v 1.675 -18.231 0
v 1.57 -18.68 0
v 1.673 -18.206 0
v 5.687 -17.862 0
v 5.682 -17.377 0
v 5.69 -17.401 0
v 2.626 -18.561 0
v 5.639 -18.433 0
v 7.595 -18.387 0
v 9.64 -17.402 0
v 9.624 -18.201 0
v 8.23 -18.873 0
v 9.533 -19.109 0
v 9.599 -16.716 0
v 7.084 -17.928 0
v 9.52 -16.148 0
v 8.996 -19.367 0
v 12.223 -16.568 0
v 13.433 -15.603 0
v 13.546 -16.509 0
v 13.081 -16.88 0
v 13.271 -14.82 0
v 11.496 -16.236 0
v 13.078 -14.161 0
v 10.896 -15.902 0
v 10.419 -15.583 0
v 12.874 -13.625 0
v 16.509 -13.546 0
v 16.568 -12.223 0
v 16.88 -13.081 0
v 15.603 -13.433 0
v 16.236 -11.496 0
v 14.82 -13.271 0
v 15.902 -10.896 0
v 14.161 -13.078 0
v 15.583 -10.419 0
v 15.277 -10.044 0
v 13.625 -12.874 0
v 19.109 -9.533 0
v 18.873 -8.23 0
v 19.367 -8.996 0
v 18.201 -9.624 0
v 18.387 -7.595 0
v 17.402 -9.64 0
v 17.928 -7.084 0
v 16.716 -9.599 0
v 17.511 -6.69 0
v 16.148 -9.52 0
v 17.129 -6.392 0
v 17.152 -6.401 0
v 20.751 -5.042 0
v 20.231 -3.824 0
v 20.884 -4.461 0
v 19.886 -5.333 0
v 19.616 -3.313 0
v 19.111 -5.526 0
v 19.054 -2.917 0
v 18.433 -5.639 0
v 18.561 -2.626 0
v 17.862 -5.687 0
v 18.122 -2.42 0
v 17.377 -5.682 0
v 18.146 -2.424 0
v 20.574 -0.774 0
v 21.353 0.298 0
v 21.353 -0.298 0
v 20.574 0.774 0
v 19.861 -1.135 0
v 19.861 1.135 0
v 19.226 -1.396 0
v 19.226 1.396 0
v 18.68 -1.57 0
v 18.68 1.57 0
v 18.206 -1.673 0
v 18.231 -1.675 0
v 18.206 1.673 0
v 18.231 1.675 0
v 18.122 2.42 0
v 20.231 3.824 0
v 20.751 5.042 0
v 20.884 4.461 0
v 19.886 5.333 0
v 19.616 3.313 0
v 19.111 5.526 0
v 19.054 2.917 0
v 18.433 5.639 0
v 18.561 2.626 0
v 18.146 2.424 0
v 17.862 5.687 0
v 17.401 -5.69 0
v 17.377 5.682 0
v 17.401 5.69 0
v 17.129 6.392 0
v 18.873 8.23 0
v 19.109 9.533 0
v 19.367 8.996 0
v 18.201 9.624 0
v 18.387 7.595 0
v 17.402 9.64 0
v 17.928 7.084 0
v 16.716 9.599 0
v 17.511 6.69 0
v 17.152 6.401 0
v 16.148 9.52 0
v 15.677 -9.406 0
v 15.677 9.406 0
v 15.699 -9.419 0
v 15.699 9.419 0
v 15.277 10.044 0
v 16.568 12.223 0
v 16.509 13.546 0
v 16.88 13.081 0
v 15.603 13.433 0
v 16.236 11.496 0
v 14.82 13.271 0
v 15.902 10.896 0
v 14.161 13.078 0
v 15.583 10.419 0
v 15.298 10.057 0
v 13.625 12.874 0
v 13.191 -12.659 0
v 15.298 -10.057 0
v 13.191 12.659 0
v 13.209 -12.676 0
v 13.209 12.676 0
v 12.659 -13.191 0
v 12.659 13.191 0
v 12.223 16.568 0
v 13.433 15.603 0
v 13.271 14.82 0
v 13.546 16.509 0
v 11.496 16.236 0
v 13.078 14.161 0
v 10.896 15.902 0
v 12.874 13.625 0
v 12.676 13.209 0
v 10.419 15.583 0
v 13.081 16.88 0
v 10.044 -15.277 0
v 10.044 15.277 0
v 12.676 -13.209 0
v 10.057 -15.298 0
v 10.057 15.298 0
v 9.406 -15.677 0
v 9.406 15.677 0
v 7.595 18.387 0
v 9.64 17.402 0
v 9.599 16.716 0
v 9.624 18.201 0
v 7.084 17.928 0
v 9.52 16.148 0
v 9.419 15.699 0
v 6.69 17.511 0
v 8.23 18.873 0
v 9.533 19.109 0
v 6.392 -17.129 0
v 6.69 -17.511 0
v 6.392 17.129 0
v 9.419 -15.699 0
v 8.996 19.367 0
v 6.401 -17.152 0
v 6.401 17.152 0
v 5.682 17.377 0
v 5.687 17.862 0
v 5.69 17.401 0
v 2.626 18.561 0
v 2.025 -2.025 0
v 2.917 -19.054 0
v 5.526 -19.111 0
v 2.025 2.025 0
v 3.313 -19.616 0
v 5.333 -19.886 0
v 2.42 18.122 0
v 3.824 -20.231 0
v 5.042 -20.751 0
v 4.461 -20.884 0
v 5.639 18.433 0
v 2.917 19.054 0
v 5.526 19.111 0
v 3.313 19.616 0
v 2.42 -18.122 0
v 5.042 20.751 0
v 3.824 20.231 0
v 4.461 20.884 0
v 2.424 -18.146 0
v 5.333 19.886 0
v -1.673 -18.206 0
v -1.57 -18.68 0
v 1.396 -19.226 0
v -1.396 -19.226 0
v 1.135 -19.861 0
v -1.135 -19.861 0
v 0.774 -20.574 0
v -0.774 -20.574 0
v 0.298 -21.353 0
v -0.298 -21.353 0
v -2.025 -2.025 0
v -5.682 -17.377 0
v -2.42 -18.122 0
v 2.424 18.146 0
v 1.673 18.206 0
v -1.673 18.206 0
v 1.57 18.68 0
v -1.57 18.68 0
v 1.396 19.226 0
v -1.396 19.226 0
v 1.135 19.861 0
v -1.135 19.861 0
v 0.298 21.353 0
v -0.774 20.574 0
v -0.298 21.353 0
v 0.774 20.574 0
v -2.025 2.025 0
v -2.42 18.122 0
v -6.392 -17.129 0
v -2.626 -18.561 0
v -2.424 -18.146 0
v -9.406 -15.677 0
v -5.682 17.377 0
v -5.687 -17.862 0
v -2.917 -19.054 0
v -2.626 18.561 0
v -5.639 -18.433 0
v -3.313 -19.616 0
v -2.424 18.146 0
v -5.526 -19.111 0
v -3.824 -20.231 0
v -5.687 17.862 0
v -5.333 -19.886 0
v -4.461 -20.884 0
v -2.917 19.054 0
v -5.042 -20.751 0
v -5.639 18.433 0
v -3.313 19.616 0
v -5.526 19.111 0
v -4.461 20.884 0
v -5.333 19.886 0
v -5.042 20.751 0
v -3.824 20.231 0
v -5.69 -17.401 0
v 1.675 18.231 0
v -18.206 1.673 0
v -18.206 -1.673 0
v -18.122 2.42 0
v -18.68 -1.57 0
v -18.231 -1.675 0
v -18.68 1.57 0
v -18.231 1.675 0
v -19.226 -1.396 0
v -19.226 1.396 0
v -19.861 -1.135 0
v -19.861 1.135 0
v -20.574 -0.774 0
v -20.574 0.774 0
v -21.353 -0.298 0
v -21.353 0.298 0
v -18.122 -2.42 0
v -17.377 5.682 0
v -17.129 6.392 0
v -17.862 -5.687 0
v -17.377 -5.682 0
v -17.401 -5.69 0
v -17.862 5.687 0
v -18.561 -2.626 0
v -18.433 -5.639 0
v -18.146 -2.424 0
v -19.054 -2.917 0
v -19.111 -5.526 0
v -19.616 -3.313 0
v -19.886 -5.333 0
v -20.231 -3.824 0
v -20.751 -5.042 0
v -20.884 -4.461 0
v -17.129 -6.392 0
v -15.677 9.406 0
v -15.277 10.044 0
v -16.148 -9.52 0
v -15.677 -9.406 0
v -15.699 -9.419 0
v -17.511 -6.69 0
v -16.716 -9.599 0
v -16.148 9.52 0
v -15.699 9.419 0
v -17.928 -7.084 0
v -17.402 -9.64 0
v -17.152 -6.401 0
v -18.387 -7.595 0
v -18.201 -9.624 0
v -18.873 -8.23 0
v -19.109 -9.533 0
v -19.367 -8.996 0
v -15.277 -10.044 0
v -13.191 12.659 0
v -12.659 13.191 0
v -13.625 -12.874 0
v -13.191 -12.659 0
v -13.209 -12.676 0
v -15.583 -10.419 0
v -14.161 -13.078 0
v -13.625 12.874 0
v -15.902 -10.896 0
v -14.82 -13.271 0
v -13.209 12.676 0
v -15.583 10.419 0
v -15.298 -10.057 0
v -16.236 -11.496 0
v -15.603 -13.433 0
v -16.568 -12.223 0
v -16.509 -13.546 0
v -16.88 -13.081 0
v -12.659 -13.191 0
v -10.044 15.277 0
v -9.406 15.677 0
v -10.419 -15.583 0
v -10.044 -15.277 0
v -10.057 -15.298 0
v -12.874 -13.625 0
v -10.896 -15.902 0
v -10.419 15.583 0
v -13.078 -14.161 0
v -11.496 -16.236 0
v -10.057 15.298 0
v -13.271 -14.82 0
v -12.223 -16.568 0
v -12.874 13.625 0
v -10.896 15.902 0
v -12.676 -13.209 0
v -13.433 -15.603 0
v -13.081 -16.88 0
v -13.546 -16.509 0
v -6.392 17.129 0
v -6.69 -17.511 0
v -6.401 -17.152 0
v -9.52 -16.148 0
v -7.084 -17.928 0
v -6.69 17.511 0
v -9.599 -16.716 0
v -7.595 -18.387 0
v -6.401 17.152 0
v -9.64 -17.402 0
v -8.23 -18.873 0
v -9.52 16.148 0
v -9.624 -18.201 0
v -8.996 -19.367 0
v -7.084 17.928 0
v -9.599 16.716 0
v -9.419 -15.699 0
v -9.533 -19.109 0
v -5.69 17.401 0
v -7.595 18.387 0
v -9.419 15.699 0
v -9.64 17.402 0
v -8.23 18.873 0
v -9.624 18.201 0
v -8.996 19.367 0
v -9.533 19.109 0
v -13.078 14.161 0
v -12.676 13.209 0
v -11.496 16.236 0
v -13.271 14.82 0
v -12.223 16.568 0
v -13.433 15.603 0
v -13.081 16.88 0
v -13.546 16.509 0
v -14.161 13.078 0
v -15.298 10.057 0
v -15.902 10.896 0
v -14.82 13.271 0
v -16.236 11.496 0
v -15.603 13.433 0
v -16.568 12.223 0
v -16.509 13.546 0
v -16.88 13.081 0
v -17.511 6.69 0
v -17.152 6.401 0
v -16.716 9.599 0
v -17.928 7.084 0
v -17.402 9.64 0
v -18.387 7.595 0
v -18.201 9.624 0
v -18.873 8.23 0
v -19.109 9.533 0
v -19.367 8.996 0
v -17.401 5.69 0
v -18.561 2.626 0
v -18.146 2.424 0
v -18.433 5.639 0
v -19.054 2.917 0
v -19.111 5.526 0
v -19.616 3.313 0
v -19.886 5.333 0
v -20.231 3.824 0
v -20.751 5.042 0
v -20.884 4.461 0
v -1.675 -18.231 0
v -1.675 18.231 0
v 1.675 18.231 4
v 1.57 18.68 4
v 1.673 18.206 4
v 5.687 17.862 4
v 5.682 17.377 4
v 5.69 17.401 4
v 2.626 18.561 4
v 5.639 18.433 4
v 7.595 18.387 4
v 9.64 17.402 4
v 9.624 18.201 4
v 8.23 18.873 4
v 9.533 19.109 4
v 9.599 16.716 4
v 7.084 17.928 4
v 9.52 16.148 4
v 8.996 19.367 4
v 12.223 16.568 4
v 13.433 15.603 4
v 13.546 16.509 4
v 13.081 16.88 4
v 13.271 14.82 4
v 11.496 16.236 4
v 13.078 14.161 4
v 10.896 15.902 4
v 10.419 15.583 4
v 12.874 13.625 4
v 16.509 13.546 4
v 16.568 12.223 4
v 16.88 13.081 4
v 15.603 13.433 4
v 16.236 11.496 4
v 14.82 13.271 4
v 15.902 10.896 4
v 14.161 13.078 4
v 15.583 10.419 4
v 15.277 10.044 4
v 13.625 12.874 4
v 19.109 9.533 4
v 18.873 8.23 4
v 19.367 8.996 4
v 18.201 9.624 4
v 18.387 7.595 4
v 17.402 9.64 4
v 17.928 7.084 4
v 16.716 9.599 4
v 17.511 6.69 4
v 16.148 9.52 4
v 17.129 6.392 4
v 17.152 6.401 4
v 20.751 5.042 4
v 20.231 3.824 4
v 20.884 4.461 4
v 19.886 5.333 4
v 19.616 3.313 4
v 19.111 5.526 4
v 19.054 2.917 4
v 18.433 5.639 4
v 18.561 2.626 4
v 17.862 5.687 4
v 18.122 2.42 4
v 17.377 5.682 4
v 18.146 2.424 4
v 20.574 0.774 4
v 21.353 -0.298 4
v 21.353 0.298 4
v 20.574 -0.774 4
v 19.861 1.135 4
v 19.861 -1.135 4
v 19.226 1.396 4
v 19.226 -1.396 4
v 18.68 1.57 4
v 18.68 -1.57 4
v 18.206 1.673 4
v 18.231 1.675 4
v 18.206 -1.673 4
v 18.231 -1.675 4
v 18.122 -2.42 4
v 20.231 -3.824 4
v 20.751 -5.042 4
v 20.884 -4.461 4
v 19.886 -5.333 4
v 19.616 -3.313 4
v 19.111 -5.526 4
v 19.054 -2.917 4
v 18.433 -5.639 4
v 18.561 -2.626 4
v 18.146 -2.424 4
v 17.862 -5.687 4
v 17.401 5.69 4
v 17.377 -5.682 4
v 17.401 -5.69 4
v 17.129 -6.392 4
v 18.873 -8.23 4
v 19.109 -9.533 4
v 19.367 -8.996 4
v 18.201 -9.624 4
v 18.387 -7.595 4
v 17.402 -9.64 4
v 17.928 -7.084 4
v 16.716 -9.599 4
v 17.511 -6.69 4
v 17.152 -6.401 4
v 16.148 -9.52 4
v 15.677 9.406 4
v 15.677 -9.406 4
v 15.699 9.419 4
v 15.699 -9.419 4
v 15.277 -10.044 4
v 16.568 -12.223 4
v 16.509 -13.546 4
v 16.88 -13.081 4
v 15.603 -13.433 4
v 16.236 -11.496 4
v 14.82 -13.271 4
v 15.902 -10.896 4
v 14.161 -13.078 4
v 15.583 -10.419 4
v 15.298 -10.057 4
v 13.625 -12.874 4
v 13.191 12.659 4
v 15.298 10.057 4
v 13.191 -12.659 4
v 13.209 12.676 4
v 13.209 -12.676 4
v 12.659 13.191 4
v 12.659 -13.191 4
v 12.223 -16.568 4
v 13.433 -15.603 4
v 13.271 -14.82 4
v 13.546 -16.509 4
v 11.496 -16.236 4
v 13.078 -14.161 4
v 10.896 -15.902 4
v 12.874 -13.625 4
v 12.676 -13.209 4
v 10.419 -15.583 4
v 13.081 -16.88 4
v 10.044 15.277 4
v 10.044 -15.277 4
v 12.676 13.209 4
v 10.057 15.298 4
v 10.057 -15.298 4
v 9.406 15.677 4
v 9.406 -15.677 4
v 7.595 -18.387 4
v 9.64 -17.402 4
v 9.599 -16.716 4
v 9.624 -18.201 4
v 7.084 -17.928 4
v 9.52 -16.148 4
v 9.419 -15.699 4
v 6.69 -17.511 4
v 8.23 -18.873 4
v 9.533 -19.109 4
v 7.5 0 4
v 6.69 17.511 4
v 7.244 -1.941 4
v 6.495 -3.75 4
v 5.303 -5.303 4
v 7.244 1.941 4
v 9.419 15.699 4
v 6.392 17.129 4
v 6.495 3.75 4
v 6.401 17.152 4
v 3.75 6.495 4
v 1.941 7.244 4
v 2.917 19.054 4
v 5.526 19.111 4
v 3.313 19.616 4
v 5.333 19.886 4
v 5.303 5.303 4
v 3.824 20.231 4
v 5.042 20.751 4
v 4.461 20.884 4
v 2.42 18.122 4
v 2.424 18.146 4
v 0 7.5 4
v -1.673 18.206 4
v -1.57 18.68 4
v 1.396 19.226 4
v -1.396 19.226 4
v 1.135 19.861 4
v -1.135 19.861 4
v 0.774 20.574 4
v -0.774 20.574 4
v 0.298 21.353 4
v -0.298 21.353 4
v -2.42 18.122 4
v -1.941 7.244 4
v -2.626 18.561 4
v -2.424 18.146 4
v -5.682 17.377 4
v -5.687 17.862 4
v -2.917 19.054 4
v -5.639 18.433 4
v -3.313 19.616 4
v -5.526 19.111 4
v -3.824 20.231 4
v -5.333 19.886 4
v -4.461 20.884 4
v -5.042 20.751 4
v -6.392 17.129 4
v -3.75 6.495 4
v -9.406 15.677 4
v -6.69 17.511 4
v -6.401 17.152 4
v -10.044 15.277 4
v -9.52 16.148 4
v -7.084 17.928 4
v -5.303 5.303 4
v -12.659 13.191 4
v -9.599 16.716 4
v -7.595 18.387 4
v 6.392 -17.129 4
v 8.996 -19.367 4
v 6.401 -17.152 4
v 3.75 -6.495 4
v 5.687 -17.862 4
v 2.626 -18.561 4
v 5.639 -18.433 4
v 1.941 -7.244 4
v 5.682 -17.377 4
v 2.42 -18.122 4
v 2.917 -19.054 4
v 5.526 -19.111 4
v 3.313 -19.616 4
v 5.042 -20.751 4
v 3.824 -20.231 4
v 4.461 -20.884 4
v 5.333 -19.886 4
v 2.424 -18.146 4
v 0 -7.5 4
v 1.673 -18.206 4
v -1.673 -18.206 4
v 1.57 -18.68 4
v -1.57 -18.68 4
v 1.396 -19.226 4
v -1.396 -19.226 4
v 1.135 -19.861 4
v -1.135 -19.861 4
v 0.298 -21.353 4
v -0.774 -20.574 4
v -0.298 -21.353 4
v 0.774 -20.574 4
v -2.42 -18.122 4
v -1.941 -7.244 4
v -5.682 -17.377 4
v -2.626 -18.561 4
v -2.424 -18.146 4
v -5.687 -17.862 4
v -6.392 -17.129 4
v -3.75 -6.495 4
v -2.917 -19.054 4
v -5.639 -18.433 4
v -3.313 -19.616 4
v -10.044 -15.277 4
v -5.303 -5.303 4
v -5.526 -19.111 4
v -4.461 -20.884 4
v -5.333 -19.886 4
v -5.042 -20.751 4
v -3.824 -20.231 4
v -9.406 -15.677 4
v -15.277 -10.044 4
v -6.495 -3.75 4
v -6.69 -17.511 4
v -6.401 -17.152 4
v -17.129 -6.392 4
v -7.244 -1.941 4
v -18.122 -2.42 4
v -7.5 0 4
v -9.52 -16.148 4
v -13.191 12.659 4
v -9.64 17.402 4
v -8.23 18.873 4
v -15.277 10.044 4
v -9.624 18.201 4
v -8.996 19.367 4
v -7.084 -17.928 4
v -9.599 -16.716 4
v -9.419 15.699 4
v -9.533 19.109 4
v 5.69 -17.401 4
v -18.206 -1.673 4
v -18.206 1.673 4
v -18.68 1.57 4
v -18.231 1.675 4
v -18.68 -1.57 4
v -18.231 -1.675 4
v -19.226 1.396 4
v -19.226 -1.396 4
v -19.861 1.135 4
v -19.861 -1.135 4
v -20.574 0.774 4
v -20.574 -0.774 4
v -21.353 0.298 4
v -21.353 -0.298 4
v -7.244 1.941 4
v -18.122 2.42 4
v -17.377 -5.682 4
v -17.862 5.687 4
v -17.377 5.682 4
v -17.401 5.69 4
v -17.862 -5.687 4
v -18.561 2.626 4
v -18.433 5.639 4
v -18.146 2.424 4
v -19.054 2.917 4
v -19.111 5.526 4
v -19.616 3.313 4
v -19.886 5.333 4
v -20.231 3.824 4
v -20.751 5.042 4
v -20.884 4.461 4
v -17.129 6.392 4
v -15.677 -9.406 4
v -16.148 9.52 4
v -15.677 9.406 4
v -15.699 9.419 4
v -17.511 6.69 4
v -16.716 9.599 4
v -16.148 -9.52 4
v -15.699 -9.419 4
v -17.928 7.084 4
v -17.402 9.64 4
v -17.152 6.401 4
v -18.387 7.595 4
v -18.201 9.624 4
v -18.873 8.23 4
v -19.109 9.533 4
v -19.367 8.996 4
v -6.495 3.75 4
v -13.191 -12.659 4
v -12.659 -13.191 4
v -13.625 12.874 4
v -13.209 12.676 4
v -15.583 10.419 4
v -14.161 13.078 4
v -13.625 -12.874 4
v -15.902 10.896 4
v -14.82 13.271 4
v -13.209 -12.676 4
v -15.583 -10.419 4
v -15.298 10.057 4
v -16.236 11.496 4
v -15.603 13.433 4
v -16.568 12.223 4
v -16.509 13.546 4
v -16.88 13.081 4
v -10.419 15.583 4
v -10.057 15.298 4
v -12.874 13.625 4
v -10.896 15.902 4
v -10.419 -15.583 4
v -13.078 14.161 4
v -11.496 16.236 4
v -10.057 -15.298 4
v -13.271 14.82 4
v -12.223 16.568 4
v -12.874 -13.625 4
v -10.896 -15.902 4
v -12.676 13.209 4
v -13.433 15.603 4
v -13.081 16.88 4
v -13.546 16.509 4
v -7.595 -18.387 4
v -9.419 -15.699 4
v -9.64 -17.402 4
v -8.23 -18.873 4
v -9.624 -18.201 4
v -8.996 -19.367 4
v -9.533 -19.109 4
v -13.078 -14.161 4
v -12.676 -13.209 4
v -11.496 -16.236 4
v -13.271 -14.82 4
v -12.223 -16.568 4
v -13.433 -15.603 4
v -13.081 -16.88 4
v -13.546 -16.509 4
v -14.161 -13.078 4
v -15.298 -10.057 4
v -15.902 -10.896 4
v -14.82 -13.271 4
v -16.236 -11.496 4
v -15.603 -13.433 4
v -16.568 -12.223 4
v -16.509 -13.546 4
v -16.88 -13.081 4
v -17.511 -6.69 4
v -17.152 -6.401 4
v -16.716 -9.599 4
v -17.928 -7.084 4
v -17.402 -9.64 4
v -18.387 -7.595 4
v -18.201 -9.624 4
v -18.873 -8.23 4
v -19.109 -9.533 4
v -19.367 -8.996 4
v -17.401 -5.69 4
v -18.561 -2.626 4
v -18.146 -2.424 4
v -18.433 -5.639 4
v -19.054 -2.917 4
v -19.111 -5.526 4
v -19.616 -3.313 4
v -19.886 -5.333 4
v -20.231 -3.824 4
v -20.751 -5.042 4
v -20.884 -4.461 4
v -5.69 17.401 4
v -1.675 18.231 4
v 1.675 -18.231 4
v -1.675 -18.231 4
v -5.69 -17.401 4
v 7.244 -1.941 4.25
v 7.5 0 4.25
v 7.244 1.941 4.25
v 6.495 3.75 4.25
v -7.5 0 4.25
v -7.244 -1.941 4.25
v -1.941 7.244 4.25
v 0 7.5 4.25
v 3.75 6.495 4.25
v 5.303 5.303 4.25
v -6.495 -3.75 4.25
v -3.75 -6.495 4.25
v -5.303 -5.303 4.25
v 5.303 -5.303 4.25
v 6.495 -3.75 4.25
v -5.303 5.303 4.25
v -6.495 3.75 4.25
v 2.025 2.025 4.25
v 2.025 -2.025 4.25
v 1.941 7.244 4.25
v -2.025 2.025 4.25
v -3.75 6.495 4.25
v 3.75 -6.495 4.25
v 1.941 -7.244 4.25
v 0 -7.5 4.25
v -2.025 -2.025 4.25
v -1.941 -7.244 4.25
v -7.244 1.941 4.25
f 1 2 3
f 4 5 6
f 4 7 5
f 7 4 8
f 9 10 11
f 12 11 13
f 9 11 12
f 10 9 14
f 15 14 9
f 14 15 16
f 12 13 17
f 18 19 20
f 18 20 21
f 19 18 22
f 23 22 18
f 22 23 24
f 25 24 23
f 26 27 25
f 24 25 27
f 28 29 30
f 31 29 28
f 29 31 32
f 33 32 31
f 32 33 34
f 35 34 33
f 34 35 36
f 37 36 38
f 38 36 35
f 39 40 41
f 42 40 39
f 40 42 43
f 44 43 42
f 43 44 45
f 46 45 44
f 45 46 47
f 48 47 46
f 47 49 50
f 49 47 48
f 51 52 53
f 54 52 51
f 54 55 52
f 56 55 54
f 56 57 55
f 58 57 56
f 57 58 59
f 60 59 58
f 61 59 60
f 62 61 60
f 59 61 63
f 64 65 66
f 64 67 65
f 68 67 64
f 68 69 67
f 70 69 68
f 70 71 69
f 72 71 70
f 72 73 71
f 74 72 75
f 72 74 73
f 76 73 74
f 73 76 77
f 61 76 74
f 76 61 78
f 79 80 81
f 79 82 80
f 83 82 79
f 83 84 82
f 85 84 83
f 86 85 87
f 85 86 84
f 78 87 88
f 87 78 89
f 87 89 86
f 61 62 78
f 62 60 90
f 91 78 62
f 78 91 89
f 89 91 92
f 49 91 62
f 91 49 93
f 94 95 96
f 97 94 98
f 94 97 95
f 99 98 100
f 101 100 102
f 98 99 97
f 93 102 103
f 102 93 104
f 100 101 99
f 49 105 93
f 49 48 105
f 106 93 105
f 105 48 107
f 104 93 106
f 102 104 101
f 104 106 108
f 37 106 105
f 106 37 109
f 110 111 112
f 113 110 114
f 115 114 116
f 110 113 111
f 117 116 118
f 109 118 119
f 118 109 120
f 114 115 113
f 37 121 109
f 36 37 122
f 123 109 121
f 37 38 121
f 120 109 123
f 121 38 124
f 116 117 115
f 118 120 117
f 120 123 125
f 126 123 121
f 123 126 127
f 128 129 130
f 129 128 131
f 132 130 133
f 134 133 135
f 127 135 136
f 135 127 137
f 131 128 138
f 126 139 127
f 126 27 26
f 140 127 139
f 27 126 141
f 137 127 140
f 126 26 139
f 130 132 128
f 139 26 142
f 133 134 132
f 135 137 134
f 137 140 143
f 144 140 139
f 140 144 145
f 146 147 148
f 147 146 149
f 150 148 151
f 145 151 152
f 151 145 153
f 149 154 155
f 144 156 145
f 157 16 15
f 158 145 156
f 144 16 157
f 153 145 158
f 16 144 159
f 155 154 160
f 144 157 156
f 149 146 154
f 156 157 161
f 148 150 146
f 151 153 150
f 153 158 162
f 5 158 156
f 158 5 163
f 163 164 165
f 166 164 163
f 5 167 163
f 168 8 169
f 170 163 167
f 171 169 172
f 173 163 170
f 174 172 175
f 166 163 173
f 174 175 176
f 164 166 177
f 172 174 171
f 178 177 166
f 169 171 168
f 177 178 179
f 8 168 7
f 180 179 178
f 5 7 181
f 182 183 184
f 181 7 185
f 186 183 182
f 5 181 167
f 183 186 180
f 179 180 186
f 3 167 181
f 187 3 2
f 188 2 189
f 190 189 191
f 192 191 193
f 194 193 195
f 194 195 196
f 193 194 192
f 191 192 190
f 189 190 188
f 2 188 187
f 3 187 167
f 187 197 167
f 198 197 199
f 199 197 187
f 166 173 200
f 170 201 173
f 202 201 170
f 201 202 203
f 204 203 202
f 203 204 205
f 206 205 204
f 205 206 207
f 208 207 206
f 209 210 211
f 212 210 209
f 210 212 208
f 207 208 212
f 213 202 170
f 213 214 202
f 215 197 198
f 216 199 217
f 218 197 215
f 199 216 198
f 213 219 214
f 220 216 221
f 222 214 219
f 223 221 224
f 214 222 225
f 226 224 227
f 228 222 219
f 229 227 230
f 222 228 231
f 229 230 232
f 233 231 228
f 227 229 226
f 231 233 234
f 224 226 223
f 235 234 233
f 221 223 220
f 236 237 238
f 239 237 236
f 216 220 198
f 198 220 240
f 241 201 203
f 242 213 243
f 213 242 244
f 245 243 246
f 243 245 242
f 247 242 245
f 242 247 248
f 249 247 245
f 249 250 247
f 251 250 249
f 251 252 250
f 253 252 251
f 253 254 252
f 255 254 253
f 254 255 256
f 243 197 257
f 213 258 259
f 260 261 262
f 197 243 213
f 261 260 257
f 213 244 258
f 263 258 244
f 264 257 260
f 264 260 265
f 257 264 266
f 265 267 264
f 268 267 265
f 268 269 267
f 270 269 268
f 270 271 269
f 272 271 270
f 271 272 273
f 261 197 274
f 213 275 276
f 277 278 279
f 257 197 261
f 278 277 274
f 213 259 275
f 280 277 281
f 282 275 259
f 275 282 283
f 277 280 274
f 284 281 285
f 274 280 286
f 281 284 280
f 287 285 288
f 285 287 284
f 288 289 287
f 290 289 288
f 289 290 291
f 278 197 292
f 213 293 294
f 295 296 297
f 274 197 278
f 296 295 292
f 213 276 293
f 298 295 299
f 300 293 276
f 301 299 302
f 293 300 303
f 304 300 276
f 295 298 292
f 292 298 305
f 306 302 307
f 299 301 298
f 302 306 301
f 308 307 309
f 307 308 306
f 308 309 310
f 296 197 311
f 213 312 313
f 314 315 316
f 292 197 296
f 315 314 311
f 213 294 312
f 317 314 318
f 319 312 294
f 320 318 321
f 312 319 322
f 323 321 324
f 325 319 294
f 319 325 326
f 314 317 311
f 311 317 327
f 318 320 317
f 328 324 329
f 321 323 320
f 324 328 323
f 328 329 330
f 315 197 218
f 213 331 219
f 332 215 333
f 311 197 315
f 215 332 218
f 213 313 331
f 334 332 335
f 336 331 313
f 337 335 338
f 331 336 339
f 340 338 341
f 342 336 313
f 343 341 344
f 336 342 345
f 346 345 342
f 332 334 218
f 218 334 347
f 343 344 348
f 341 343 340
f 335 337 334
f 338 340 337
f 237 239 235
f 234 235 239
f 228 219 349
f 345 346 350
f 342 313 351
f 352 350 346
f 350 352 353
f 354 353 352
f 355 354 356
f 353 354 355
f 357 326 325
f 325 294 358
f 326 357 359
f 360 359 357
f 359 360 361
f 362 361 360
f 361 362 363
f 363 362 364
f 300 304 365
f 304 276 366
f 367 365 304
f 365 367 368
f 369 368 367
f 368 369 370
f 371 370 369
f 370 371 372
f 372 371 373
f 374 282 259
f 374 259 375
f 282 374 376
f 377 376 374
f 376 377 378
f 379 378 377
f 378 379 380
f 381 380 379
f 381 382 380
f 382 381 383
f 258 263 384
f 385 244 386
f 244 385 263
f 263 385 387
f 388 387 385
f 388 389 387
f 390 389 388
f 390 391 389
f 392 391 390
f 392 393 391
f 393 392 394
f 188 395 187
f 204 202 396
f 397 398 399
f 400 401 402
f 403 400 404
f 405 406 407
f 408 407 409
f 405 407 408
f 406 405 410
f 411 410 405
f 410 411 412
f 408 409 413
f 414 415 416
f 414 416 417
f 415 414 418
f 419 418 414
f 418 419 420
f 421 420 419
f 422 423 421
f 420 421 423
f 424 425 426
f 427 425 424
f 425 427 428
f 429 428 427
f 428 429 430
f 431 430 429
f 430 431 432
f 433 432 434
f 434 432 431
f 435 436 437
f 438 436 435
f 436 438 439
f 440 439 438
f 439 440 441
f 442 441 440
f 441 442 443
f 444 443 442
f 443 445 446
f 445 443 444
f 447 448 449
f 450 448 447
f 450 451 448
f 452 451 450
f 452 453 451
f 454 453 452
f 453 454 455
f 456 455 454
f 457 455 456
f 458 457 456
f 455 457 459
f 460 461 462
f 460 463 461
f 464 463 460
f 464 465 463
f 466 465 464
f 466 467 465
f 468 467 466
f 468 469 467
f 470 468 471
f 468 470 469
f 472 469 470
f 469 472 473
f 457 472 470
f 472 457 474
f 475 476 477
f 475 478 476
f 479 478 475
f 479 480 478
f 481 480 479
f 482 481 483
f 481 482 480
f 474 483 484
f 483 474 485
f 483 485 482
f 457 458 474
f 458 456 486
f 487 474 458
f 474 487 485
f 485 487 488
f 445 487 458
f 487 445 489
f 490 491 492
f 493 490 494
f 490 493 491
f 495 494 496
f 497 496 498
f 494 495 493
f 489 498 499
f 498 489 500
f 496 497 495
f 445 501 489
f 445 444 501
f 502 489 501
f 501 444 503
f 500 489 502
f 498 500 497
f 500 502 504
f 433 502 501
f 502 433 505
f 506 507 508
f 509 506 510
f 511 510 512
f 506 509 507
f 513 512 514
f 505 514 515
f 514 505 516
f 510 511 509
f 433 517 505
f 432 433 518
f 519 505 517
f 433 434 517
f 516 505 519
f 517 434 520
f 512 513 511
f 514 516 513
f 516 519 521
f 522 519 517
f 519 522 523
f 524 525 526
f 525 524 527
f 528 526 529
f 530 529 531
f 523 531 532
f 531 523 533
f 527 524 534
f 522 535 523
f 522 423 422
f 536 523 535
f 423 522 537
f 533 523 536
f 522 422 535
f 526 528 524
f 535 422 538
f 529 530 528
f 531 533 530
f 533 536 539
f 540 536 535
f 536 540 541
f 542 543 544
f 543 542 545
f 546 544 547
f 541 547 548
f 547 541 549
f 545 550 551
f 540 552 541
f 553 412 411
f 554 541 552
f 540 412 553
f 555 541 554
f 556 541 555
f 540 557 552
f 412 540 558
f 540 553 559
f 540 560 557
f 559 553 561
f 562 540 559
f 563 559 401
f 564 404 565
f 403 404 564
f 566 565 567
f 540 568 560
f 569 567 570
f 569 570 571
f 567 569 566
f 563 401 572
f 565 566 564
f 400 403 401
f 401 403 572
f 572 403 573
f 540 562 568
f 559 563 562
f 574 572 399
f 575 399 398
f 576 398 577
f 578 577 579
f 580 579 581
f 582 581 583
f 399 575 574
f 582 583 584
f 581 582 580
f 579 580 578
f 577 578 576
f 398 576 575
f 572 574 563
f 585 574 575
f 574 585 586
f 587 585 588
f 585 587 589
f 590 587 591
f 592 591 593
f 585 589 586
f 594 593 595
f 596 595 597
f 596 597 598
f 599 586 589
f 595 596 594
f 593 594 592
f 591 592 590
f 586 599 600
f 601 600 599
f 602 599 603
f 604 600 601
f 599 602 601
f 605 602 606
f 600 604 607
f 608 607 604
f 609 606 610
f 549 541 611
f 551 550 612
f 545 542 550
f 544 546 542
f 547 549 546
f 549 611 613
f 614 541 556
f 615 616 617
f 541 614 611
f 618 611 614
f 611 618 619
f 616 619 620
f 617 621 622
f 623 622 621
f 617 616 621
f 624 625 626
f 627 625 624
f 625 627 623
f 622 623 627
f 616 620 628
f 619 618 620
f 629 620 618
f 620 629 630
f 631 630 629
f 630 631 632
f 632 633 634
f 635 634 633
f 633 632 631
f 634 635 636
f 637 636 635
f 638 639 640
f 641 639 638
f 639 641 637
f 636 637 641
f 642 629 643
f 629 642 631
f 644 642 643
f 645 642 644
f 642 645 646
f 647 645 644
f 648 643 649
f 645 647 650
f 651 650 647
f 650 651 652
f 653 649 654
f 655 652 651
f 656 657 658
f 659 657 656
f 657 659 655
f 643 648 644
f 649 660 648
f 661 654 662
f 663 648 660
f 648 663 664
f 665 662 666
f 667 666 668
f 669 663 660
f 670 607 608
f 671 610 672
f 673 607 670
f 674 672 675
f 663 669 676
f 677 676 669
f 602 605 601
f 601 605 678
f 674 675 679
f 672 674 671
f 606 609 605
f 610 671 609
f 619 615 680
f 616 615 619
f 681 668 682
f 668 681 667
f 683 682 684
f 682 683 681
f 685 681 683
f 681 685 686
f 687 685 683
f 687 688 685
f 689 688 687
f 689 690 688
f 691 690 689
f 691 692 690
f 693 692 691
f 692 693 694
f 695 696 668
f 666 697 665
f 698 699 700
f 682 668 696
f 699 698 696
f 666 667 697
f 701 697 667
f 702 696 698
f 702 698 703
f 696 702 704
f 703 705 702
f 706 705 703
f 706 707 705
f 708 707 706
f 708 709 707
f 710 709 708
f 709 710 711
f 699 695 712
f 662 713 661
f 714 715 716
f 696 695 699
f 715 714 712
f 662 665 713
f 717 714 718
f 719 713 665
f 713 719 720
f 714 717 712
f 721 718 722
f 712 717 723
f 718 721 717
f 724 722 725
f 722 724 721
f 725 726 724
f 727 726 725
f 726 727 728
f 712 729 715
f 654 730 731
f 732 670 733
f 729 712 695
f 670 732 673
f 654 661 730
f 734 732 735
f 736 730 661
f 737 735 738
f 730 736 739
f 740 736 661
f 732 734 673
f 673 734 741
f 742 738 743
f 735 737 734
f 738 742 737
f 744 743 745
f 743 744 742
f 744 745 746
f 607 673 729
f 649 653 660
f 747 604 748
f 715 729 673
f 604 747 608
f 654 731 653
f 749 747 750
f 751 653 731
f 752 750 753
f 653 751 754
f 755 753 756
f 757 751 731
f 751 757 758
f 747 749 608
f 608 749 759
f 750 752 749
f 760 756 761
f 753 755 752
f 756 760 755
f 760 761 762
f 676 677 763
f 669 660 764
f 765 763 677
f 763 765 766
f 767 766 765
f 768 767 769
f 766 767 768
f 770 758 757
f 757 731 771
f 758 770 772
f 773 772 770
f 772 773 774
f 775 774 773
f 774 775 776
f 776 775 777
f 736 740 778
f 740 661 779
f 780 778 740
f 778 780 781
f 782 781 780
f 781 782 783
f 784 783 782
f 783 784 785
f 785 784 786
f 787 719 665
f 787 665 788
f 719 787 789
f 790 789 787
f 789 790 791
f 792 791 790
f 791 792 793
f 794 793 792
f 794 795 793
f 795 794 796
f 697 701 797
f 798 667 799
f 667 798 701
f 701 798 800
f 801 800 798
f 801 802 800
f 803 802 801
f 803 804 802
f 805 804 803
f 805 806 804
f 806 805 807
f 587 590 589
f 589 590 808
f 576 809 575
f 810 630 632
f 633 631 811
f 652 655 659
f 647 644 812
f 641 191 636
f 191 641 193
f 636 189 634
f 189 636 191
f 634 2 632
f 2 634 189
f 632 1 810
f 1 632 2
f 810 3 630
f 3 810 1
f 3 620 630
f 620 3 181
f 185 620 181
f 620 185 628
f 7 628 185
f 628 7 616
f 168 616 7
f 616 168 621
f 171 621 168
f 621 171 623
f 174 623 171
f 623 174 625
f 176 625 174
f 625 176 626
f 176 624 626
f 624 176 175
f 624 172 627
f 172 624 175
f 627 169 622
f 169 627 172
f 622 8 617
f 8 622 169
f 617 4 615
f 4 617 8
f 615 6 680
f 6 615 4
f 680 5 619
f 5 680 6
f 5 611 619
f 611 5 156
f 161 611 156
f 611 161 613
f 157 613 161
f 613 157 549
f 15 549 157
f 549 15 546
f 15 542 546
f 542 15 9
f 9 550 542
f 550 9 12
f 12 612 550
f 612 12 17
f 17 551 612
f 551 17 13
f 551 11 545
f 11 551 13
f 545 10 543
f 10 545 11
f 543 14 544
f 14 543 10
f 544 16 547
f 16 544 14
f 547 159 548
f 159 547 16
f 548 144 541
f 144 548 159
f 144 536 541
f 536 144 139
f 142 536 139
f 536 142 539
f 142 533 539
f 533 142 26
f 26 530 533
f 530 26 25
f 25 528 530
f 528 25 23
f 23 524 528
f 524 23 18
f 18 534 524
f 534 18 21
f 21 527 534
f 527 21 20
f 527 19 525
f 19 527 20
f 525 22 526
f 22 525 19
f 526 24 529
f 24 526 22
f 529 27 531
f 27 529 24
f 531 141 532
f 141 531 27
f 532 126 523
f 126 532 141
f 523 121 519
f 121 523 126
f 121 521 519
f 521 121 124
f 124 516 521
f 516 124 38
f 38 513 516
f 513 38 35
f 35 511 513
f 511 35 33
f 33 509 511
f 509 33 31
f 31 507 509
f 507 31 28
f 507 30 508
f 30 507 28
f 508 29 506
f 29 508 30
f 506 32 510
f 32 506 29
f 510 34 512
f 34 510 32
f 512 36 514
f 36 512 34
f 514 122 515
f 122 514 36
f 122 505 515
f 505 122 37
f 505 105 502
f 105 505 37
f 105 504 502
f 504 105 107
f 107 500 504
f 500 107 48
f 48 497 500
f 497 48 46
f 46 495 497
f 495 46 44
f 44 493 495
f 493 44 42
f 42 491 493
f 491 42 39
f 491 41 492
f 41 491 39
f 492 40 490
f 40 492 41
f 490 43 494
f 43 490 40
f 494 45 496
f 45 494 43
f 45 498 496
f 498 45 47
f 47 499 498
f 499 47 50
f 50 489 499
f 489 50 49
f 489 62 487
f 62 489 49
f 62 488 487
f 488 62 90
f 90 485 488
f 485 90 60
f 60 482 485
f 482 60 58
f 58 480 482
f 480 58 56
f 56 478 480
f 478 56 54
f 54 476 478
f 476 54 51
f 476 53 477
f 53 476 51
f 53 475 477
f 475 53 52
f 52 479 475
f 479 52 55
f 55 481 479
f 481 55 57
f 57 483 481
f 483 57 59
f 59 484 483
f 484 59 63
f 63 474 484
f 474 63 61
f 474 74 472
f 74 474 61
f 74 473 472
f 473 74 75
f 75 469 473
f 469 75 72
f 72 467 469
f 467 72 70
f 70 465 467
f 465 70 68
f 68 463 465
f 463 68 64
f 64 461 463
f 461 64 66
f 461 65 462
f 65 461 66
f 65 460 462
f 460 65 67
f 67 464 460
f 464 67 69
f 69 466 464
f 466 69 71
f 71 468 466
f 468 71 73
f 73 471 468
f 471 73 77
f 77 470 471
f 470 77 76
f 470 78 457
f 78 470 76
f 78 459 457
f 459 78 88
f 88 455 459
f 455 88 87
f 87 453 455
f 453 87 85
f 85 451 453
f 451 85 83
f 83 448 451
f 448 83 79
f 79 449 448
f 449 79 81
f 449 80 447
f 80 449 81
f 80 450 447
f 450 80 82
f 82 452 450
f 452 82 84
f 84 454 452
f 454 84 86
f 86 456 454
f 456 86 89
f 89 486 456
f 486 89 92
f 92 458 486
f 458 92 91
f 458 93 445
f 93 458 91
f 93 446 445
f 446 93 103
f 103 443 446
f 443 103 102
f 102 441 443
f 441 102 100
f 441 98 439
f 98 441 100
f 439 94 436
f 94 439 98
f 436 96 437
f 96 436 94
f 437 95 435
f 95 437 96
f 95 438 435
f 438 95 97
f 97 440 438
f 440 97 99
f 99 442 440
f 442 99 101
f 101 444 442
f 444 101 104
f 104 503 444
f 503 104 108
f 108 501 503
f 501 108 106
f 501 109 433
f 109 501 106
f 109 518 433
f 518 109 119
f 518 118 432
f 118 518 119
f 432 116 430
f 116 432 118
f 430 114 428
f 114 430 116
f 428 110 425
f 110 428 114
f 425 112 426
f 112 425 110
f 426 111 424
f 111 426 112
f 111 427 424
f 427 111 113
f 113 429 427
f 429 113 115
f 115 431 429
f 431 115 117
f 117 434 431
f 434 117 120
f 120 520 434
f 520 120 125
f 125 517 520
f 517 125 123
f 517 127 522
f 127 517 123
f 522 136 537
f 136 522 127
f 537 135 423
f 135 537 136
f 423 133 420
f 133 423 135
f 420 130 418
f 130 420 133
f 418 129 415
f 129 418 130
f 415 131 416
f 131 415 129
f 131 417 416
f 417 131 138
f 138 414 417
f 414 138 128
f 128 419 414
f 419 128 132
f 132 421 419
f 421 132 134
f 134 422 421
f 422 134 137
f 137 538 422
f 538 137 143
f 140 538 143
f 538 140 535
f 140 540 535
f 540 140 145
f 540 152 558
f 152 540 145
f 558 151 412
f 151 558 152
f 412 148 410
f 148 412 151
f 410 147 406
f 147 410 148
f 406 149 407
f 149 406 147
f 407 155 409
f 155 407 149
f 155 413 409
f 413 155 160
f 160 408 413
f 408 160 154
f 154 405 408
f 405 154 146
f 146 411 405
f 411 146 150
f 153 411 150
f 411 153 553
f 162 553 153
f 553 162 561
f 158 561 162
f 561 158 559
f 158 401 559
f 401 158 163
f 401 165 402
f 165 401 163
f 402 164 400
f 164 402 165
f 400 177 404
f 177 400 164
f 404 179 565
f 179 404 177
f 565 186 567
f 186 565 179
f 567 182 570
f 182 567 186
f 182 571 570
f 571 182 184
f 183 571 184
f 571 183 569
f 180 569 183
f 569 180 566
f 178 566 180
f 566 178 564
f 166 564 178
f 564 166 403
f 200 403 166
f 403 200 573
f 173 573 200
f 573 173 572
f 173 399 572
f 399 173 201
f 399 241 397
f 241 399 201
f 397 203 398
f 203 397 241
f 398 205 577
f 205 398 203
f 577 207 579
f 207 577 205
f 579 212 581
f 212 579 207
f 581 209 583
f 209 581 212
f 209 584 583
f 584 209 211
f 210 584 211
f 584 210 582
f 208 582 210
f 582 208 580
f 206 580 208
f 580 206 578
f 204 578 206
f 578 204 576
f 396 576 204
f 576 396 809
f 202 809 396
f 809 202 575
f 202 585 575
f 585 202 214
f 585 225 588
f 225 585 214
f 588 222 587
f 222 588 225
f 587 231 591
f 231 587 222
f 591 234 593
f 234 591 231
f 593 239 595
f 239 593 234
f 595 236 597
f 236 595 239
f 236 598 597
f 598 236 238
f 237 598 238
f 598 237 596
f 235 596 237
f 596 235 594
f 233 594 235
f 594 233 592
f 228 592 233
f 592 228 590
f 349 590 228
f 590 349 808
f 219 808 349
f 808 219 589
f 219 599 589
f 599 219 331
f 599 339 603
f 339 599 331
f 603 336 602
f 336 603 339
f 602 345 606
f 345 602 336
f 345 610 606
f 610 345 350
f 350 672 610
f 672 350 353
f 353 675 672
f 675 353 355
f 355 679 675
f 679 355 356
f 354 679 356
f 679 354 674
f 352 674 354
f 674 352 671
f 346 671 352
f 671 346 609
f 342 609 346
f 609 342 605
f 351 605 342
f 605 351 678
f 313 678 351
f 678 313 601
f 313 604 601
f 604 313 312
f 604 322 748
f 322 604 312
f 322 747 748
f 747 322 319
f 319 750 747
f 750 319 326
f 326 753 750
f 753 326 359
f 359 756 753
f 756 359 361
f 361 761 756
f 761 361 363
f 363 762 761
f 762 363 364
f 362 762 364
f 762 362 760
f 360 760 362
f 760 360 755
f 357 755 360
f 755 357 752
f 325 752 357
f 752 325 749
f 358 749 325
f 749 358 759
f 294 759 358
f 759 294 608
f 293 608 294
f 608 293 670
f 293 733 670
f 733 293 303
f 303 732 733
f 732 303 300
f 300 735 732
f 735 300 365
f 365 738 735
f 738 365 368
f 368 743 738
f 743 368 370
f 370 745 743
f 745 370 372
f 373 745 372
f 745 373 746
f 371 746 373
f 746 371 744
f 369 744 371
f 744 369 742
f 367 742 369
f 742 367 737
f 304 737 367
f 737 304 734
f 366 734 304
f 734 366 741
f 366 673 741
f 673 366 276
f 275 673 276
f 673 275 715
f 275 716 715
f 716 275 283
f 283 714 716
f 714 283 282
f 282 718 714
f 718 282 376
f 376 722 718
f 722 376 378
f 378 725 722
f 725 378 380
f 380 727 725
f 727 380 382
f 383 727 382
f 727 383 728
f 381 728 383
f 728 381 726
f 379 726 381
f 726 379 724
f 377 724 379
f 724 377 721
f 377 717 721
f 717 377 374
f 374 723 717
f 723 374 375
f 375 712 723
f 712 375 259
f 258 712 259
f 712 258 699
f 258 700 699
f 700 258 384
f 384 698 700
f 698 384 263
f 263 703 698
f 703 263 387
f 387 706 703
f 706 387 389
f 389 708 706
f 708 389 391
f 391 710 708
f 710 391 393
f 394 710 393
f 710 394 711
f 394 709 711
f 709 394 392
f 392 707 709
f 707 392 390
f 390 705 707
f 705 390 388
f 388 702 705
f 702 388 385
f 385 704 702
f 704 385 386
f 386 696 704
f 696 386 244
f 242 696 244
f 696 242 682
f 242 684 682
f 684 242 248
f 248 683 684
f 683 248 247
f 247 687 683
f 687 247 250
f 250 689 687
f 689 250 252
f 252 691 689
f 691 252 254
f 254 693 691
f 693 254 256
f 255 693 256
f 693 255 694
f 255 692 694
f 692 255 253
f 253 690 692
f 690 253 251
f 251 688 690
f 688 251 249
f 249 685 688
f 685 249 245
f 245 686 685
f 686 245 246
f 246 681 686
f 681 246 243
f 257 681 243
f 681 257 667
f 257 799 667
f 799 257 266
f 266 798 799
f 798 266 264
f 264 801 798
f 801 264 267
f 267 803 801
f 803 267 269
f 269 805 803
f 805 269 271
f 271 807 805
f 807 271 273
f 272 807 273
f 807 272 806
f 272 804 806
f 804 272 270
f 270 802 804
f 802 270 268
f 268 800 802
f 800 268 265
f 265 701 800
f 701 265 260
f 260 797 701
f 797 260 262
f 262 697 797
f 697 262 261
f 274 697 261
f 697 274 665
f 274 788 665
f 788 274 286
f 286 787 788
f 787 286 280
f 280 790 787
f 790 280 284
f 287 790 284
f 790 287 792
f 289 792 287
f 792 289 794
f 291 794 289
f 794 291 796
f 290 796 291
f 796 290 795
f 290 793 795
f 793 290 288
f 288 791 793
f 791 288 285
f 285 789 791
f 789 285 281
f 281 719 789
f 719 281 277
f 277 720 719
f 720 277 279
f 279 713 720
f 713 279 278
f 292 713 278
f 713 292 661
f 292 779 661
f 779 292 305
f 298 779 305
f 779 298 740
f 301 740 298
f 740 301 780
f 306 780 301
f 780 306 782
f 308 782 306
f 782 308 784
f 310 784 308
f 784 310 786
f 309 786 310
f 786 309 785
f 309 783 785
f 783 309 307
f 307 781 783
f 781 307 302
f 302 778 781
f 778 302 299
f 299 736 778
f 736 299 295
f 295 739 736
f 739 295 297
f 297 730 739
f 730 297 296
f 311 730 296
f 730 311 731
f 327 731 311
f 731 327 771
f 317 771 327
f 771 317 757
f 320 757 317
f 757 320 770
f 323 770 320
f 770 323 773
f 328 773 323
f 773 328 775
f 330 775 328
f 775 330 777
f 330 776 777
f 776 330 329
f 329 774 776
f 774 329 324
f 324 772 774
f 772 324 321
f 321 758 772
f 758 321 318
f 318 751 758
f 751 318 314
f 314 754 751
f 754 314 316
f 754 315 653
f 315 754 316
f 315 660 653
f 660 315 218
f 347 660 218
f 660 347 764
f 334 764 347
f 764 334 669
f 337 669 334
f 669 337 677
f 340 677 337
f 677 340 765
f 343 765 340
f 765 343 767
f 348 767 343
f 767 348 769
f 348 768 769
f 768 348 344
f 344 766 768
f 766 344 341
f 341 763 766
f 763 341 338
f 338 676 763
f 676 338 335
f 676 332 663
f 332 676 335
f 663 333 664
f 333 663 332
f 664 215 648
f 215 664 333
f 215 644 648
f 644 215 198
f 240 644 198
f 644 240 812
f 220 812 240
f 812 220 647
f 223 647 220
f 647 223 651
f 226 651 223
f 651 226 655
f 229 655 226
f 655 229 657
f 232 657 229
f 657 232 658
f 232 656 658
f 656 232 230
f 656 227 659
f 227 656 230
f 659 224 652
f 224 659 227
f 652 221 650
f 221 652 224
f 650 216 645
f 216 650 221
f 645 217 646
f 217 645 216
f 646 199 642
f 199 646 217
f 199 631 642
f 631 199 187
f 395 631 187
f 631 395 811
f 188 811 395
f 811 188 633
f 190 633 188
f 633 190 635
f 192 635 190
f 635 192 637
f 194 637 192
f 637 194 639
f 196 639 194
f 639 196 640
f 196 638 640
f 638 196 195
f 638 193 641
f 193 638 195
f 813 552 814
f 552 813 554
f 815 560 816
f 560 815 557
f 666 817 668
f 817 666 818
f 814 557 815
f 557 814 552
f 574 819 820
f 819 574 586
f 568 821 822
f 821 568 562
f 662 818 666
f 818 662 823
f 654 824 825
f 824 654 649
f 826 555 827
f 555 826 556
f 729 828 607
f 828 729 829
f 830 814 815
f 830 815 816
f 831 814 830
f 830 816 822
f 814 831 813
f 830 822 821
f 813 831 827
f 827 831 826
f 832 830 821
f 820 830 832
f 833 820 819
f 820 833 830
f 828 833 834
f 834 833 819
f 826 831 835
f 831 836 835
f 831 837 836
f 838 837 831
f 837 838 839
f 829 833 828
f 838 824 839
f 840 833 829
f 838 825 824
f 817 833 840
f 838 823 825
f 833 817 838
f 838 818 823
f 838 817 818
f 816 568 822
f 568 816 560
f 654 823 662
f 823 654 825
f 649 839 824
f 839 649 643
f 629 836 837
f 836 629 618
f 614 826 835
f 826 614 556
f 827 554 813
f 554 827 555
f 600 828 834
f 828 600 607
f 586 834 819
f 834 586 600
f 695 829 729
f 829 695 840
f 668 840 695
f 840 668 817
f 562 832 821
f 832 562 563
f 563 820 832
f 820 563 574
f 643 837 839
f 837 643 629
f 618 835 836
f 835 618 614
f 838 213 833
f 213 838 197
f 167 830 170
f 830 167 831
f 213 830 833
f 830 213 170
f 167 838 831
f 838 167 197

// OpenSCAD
//This is an openscad part used in a modified version of perseverance.
//This version is optimized to use a lasercut base using 3mm thick material

//header
include <MCAD/involute_gears.scad>

//render
idler_gear_large();

//===========Geometry============
clearance = 0.05; //mm - amount to oversize holes so that parts will assemble

teeth = 28; //mm - diameter of the cap of the axle pin, overall
d_pitch = 0.702412; // pitch to specify teeth
t_gear = 4; //mm - thickness of the gear
t_hub = 4.25; //mm - thickness of the hub - raised slightly to stand gear off of edge
l_pen = 4+clearance; //mm - length of the side of the square pin to cut out
t_pen = 2*t_hub; //mm - the thickness of the square pin to cut out (oversized)

fudge = 0.01; //mm - use this value to make sure surfaces aren't coincident
//===========Modules=============
//Imported module gear:
//Below is a list of arguments and brief discriptions.
//Default values listed in ().
//	number_of_teeth (15) - can specify the number of teeth on the gear
//	circular_pitch (false), diametral_pitch(false) - specify one or the other numerically
//	pressure_angle (28) - can specify a different pressure angle
//	clearance (0.2) - clearance for gear design
//	gear_thickness (5) - specify thickness of gear body
//	rim_thickness (8) - specify thickness of rim and teeth,
//	rim_width(5) - ??
//	hub_thickness(10) - specify thickness of the central hub,
//	hub_diameter (15) - specify diameter of central hub
//	bore_diameter (5) - specify diameter of through-hole
//	circles (0) - can subtract material by removing specified number of holes from body
//	backlash (0) - can add specified amout of backlash to gears
//	twist (0),
//	involute_facets (0),
//	flat (false)
module idler_gear_large(){
    difference(){
        gear (number_of_teeth=teeth,
              diametral_pitch=d_pitch,
              gear_thickness = t_gear,
              rim_thickness = t_gear,
              hub_thickness = t_hub,
              bore_diameter=0);
        //specified with zero bore diameter so we can cut a square notch
        
        cube([l_pen,l_pen,3*t_pen],center=true);
    }
}
